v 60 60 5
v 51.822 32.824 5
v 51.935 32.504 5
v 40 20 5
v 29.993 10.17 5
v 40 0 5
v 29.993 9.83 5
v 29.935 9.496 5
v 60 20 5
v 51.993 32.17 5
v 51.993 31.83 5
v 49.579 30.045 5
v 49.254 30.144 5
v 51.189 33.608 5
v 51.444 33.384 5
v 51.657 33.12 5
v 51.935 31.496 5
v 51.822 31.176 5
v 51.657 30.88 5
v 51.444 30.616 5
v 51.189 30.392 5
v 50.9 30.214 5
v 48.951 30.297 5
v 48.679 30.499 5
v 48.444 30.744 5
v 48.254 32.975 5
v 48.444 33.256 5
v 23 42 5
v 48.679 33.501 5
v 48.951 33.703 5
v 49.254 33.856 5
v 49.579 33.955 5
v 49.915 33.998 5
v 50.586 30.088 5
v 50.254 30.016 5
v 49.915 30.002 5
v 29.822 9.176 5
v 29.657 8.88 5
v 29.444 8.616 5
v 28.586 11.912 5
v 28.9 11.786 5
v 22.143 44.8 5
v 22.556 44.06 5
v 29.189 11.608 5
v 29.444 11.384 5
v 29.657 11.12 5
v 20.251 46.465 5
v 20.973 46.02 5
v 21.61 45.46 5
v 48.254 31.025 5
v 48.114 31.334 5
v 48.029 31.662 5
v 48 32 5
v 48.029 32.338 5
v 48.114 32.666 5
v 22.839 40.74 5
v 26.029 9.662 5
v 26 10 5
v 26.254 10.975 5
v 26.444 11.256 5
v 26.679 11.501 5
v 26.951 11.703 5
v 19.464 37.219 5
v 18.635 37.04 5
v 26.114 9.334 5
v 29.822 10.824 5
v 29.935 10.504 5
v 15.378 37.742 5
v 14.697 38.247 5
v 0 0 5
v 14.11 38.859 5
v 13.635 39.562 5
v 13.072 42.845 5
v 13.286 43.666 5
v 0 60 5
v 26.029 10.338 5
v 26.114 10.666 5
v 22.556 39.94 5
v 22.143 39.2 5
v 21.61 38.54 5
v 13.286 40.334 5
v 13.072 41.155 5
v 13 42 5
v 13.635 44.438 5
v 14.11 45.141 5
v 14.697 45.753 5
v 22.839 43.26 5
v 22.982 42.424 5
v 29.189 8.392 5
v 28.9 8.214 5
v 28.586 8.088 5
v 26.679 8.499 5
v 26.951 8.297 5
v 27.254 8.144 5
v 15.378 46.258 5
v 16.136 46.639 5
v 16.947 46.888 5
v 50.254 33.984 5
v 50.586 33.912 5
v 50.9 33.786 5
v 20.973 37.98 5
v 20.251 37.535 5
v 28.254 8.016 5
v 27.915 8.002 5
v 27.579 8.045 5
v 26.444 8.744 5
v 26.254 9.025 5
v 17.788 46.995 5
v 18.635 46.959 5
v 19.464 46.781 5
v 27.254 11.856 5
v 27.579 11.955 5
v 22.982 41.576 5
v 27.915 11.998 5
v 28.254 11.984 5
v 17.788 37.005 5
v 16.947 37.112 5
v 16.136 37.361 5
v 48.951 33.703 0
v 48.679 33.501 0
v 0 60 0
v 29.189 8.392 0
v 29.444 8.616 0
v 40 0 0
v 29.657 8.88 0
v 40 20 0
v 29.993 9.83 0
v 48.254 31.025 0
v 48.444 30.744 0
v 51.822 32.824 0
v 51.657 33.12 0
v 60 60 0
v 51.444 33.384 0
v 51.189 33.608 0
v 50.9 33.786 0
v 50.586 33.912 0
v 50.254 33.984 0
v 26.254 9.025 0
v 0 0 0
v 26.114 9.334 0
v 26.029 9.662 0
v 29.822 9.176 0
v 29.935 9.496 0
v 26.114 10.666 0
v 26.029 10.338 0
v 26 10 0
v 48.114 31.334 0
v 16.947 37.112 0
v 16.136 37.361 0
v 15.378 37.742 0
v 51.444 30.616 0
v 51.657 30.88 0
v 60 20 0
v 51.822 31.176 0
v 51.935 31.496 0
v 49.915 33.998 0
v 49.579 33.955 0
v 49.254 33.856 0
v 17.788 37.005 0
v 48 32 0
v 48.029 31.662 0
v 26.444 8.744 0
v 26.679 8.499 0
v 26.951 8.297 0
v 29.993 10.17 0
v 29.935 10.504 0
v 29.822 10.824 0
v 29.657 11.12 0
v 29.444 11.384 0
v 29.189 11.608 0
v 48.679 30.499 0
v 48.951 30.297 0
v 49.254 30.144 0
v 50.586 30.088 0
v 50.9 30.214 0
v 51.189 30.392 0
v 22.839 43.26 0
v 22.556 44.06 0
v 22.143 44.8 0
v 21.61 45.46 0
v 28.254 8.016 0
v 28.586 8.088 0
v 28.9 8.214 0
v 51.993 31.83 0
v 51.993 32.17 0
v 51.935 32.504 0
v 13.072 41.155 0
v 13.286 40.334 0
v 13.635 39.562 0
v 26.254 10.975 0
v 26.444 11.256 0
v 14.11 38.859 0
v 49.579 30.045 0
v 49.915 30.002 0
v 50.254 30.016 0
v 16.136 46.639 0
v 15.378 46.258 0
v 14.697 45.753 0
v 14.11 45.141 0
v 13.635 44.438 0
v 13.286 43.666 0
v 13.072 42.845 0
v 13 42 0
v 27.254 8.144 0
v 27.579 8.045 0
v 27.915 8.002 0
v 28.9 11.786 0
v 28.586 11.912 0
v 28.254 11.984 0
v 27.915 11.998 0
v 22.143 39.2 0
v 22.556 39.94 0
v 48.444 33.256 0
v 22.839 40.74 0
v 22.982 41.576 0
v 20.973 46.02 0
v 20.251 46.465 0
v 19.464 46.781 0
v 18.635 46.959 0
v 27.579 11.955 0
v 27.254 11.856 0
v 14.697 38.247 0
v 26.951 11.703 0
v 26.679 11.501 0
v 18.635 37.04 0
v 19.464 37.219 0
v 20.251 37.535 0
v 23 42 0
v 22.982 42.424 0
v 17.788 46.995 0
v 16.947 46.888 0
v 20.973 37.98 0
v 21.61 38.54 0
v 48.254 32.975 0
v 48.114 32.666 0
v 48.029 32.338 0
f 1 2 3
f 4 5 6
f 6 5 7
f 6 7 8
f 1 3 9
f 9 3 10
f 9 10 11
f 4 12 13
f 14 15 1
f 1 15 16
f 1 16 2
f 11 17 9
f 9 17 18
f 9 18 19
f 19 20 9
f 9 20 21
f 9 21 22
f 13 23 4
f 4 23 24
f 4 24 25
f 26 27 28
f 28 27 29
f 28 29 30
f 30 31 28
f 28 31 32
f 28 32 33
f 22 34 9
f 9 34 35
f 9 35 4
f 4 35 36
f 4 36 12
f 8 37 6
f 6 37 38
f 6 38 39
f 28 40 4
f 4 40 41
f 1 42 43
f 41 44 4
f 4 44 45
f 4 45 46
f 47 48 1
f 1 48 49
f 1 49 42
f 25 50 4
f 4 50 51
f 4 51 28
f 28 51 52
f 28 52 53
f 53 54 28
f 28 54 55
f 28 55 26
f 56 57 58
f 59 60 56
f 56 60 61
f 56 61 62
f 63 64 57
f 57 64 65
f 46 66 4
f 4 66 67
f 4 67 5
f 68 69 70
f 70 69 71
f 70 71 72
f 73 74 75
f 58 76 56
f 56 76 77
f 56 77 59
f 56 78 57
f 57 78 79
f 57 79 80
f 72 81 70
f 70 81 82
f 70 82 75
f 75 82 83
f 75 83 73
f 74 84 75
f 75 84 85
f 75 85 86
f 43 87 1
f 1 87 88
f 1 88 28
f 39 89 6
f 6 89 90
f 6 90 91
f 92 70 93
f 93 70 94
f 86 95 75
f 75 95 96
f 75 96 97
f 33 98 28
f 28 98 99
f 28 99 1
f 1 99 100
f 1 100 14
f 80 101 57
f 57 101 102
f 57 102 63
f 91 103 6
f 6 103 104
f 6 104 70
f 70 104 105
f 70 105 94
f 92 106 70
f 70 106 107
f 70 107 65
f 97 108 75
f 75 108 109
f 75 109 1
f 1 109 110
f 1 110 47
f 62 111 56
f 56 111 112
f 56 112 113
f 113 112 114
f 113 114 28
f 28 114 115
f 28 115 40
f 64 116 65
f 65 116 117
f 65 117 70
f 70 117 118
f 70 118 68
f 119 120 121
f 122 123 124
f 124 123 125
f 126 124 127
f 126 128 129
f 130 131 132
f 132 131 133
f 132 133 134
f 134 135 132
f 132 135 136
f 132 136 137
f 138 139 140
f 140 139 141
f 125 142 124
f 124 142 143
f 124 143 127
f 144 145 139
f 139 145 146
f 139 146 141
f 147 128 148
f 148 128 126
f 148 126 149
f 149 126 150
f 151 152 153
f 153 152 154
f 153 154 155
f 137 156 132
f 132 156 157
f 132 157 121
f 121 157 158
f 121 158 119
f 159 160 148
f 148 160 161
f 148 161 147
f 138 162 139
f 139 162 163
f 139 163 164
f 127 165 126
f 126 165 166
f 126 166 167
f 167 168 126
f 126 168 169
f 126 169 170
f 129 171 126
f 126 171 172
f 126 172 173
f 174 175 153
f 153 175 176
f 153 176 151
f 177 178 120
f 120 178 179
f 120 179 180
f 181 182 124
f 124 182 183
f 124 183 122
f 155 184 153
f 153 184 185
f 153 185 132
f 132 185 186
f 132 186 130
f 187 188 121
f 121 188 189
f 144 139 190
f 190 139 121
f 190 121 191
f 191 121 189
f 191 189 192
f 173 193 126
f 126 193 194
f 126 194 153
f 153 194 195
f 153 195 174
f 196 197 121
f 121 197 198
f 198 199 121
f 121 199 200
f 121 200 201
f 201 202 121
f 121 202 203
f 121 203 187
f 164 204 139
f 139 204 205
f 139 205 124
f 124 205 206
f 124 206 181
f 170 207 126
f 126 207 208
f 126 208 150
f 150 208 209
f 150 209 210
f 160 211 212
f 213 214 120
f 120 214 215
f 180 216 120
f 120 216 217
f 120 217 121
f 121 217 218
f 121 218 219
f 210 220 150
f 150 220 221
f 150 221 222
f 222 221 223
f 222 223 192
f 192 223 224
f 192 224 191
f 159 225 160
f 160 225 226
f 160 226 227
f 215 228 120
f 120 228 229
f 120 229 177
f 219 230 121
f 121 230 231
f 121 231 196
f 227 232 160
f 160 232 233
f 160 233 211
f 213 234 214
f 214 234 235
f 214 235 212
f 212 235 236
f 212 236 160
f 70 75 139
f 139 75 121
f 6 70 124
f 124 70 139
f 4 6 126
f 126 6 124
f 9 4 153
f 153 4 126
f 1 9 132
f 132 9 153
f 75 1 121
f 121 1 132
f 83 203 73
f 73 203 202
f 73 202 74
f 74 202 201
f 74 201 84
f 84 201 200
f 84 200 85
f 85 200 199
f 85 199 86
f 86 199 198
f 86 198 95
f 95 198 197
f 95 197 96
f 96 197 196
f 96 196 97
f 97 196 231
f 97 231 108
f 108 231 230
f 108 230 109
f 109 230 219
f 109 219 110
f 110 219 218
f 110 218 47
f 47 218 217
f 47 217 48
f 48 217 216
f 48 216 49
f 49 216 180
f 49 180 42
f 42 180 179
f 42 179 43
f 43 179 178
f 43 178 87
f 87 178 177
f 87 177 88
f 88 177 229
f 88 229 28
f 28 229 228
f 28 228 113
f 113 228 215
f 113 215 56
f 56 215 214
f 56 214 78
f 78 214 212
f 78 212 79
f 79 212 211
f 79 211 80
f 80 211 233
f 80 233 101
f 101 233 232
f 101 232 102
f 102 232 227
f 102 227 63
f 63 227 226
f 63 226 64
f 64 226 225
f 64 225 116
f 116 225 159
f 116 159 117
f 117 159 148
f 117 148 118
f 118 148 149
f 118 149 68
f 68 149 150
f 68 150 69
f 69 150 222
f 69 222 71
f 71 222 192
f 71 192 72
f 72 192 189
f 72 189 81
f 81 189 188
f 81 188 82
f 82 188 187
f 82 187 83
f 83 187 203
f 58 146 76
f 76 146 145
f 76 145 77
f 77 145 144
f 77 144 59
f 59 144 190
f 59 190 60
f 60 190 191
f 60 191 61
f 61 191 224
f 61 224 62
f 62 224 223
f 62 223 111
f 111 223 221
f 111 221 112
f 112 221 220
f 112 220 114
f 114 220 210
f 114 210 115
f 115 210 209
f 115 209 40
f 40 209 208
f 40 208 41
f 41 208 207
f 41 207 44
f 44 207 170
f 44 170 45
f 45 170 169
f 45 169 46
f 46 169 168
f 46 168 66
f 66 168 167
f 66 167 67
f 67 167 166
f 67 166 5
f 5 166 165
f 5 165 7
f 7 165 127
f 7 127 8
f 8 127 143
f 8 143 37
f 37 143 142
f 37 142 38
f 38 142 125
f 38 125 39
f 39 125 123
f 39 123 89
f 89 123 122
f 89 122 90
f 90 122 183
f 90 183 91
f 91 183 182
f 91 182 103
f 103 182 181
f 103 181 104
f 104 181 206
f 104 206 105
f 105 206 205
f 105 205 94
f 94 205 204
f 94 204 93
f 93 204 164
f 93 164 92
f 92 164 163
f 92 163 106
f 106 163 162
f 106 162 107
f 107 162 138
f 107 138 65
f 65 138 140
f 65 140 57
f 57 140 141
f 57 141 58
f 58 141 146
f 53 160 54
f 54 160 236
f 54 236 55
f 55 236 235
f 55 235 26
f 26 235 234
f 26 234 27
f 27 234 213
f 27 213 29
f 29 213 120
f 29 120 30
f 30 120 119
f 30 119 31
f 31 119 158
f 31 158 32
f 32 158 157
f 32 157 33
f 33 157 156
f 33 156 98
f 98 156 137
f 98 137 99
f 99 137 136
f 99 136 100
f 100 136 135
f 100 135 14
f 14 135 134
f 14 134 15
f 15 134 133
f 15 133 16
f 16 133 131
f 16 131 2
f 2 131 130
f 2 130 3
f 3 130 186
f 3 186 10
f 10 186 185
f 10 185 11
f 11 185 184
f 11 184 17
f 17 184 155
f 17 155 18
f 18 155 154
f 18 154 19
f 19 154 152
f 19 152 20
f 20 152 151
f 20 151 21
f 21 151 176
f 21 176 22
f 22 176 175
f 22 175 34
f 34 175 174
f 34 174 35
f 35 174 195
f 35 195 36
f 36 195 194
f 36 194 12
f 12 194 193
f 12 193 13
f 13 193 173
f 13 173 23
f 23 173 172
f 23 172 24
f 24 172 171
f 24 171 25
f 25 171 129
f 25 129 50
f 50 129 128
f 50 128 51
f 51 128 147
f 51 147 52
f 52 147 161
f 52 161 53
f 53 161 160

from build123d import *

# Parameters (mm, degrees)
SKETCH1_R           = 5
BOSS_EXTRUDE1_DEPTH = 5
SKETCH2_R           = 2
CUT_EXTRUDE1_DEPTH  = 86


with BuildPart() as part:
    # Sketch1 → Boss-Extrude1 (new body)
    with BuildSketch(Plane.XY):
        Polygon((0, 0), (40, 0), (40, 20), (60, 20), (60, 60), (0, 60), align=None)
        with Locations((18, 42)):
            Circle(SKETCH1_R, mode=Mode.SUBTRACT)
    extrude(amount=BOSS_EXTRUDE1_DEPTH)

    # Sketch2 → Cut-Extrude1 (cut, through all)
    with BuildSketch(Plane(origin=(0, 0, 0), x_dir=(-1, 0, 0), z_dir=(0, 0, -1))):
        with Locations((-50, 32)):
            Circle(SKETCH2_R)
        with Locations((-28, 10)):
            Circle(SKETCH2_R)
    extrude(amount=-CUT_EXTRUDE1_DEPTH, mode=Mode.SUBTRACT)


solid = part.part
